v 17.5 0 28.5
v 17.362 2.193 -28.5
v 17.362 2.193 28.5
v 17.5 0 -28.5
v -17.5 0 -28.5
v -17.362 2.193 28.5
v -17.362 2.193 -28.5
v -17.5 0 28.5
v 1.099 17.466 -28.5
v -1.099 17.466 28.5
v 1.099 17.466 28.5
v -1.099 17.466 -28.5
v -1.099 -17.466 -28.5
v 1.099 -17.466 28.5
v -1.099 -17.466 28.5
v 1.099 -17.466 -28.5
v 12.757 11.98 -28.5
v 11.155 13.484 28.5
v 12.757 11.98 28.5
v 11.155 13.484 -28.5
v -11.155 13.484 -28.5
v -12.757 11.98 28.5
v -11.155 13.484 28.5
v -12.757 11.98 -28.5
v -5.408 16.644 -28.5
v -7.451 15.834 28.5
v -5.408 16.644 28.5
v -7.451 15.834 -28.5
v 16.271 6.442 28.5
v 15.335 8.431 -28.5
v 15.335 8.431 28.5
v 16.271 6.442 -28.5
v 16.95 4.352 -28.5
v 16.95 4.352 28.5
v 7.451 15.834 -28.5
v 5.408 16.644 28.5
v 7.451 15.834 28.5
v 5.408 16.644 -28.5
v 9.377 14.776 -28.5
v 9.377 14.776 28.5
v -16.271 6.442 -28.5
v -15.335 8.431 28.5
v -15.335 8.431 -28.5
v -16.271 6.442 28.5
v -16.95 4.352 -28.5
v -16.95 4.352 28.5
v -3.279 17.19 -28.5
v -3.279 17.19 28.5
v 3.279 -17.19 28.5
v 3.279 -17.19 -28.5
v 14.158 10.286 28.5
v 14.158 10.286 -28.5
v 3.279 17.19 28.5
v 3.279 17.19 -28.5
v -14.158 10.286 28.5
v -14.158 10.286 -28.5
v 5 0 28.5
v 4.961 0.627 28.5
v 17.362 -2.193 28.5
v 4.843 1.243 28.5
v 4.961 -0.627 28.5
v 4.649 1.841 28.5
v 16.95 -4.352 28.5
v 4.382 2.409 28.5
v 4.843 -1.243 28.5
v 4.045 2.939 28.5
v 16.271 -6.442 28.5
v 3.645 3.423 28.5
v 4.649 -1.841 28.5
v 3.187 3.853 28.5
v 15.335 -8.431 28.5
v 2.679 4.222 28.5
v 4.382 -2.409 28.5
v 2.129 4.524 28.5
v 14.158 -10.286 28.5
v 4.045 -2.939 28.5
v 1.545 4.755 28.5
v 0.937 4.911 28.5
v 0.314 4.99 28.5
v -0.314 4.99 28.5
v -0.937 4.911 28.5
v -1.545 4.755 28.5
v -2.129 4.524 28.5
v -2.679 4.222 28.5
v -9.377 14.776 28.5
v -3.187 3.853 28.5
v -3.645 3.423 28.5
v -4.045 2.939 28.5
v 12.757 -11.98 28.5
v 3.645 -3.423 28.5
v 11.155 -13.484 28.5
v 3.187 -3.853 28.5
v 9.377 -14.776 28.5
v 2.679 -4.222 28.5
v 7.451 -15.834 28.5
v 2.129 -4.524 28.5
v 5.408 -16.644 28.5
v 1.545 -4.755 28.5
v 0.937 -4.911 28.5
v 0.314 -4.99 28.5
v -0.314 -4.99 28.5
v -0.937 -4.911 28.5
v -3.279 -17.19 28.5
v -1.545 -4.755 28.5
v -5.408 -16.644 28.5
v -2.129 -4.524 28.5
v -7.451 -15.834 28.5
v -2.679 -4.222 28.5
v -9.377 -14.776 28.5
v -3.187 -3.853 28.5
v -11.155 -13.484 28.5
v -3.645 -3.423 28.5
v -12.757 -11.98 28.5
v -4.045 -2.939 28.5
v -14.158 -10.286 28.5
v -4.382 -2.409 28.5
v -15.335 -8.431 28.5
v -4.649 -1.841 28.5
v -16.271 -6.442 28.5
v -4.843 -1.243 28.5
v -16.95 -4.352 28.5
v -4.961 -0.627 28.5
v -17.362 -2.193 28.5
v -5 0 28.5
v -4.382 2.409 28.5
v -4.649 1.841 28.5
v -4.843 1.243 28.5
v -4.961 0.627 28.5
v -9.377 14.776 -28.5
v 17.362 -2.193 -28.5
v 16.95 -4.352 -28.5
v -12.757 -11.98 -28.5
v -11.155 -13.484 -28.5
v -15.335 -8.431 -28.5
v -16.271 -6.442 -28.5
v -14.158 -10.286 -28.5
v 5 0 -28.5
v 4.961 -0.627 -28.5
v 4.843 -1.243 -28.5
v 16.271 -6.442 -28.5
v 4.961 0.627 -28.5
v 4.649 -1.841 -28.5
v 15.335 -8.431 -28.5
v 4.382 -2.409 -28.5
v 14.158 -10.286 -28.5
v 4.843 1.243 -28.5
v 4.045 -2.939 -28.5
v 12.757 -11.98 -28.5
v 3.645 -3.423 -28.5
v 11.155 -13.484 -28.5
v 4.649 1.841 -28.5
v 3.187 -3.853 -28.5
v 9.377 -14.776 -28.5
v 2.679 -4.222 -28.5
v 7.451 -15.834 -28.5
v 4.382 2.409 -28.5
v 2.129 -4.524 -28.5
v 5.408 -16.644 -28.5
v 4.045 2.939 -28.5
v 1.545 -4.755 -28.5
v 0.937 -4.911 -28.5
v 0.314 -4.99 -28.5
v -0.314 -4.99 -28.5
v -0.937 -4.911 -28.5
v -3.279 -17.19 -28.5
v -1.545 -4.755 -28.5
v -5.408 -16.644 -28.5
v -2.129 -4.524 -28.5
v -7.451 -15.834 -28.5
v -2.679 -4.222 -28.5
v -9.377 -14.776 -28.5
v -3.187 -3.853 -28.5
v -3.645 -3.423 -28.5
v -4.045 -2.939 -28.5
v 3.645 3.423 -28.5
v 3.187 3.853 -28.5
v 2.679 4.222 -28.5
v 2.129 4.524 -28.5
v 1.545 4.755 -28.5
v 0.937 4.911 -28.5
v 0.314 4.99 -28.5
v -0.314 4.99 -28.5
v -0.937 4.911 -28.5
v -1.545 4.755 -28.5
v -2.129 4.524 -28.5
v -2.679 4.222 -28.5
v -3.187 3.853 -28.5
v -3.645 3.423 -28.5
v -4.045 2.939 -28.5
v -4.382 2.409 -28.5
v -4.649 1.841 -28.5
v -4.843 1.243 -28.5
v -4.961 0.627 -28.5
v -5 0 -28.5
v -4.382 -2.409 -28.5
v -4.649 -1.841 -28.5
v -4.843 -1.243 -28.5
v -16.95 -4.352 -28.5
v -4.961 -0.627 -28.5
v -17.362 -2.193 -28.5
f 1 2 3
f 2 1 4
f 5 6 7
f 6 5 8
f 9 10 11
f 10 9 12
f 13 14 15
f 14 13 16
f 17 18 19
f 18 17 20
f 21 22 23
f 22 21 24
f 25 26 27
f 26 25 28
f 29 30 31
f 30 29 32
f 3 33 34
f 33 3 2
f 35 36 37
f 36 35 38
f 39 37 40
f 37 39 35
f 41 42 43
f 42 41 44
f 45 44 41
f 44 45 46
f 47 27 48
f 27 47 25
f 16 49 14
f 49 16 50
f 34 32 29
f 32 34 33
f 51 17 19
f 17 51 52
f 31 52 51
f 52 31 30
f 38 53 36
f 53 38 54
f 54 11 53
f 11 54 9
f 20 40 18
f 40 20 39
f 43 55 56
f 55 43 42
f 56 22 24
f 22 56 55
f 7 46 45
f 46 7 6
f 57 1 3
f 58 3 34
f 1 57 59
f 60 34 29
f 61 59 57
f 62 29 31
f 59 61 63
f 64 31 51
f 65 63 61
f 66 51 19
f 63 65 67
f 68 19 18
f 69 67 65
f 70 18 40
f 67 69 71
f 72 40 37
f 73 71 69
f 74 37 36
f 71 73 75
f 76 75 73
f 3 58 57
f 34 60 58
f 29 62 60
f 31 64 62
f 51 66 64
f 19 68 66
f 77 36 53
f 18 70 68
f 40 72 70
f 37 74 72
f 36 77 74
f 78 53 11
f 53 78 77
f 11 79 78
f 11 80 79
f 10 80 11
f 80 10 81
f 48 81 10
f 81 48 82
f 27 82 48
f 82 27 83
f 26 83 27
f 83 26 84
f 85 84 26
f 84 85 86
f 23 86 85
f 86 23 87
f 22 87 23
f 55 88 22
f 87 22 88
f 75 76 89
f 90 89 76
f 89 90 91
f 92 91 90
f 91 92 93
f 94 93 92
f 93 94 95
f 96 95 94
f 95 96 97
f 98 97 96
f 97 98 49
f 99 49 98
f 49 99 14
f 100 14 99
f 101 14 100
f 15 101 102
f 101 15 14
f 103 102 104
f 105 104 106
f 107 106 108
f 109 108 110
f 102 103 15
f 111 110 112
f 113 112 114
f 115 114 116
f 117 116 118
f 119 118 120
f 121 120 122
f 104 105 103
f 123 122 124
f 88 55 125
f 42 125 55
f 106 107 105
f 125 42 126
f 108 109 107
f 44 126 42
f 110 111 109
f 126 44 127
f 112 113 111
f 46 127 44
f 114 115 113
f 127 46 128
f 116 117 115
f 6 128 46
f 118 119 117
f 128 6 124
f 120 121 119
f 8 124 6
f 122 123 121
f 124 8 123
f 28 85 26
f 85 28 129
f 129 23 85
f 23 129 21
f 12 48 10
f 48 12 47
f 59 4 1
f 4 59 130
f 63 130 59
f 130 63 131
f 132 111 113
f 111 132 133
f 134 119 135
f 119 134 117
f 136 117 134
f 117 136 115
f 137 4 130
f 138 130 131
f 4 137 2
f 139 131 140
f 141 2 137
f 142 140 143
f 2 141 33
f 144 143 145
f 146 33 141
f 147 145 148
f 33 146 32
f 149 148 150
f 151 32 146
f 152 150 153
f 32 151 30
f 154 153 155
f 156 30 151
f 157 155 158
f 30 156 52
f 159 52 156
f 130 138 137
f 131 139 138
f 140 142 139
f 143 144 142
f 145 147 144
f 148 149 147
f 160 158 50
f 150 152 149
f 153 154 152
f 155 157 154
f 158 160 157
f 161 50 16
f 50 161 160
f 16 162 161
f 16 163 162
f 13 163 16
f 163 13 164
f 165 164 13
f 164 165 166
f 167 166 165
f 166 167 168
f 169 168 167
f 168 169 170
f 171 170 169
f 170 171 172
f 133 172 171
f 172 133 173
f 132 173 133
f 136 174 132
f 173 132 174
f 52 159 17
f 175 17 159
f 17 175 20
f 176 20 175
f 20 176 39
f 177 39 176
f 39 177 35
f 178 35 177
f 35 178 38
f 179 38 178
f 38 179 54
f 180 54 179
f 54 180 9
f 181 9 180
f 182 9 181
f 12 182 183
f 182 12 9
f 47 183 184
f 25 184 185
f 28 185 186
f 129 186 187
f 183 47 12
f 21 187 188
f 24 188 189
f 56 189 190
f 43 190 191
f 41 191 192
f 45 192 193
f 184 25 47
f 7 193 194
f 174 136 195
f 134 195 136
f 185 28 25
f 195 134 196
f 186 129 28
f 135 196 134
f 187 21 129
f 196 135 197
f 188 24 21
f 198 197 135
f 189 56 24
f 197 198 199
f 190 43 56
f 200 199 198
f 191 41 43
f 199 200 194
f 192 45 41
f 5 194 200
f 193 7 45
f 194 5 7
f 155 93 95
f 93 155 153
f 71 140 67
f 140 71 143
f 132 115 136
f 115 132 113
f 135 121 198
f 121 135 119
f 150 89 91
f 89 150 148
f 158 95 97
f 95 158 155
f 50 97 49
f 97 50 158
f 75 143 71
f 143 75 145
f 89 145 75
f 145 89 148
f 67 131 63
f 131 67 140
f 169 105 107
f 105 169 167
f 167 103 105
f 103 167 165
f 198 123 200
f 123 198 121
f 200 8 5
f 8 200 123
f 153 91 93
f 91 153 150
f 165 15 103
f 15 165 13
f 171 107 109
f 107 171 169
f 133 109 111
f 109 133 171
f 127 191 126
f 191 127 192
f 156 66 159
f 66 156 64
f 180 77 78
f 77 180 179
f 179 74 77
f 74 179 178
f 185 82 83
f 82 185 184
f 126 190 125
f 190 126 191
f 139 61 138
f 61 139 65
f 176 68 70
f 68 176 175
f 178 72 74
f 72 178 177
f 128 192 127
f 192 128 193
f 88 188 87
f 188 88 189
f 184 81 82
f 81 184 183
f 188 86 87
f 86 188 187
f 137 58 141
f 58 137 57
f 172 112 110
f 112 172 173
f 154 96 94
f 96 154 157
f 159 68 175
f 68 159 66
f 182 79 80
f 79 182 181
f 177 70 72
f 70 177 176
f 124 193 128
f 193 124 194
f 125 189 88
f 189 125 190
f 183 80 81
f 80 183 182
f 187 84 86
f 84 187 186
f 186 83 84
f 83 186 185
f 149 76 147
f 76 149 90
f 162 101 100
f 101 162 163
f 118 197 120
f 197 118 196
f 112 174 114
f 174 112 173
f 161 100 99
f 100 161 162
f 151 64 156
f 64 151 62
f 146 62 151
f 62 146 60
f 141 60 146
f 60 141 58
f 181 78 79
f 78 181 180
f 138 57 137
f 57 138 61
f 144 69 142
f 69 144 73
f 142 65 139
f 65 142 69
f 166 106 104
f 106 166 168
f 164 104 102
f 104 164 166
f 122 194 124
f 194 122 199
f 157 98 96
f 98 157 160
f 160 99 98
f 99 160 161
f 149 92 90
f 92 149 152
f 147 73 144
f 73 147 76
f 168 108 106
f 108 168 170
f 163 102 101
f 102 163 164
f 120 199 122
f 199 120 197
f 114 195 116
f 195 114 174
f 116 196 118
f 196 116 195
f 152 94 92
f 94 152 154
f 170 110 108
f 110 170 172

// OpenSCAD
$fn = 50;


difference() {
	union() {
		translate(v = [0, 0, -28.5000000000]) {
			cylinder(h = 57, r = 17.5000000000);
		}
	}
	union() {
		translate(v = [0, 0, -100.0000000000]) {
			cylinder(h = 200, r = 5);
		}
	}
}
